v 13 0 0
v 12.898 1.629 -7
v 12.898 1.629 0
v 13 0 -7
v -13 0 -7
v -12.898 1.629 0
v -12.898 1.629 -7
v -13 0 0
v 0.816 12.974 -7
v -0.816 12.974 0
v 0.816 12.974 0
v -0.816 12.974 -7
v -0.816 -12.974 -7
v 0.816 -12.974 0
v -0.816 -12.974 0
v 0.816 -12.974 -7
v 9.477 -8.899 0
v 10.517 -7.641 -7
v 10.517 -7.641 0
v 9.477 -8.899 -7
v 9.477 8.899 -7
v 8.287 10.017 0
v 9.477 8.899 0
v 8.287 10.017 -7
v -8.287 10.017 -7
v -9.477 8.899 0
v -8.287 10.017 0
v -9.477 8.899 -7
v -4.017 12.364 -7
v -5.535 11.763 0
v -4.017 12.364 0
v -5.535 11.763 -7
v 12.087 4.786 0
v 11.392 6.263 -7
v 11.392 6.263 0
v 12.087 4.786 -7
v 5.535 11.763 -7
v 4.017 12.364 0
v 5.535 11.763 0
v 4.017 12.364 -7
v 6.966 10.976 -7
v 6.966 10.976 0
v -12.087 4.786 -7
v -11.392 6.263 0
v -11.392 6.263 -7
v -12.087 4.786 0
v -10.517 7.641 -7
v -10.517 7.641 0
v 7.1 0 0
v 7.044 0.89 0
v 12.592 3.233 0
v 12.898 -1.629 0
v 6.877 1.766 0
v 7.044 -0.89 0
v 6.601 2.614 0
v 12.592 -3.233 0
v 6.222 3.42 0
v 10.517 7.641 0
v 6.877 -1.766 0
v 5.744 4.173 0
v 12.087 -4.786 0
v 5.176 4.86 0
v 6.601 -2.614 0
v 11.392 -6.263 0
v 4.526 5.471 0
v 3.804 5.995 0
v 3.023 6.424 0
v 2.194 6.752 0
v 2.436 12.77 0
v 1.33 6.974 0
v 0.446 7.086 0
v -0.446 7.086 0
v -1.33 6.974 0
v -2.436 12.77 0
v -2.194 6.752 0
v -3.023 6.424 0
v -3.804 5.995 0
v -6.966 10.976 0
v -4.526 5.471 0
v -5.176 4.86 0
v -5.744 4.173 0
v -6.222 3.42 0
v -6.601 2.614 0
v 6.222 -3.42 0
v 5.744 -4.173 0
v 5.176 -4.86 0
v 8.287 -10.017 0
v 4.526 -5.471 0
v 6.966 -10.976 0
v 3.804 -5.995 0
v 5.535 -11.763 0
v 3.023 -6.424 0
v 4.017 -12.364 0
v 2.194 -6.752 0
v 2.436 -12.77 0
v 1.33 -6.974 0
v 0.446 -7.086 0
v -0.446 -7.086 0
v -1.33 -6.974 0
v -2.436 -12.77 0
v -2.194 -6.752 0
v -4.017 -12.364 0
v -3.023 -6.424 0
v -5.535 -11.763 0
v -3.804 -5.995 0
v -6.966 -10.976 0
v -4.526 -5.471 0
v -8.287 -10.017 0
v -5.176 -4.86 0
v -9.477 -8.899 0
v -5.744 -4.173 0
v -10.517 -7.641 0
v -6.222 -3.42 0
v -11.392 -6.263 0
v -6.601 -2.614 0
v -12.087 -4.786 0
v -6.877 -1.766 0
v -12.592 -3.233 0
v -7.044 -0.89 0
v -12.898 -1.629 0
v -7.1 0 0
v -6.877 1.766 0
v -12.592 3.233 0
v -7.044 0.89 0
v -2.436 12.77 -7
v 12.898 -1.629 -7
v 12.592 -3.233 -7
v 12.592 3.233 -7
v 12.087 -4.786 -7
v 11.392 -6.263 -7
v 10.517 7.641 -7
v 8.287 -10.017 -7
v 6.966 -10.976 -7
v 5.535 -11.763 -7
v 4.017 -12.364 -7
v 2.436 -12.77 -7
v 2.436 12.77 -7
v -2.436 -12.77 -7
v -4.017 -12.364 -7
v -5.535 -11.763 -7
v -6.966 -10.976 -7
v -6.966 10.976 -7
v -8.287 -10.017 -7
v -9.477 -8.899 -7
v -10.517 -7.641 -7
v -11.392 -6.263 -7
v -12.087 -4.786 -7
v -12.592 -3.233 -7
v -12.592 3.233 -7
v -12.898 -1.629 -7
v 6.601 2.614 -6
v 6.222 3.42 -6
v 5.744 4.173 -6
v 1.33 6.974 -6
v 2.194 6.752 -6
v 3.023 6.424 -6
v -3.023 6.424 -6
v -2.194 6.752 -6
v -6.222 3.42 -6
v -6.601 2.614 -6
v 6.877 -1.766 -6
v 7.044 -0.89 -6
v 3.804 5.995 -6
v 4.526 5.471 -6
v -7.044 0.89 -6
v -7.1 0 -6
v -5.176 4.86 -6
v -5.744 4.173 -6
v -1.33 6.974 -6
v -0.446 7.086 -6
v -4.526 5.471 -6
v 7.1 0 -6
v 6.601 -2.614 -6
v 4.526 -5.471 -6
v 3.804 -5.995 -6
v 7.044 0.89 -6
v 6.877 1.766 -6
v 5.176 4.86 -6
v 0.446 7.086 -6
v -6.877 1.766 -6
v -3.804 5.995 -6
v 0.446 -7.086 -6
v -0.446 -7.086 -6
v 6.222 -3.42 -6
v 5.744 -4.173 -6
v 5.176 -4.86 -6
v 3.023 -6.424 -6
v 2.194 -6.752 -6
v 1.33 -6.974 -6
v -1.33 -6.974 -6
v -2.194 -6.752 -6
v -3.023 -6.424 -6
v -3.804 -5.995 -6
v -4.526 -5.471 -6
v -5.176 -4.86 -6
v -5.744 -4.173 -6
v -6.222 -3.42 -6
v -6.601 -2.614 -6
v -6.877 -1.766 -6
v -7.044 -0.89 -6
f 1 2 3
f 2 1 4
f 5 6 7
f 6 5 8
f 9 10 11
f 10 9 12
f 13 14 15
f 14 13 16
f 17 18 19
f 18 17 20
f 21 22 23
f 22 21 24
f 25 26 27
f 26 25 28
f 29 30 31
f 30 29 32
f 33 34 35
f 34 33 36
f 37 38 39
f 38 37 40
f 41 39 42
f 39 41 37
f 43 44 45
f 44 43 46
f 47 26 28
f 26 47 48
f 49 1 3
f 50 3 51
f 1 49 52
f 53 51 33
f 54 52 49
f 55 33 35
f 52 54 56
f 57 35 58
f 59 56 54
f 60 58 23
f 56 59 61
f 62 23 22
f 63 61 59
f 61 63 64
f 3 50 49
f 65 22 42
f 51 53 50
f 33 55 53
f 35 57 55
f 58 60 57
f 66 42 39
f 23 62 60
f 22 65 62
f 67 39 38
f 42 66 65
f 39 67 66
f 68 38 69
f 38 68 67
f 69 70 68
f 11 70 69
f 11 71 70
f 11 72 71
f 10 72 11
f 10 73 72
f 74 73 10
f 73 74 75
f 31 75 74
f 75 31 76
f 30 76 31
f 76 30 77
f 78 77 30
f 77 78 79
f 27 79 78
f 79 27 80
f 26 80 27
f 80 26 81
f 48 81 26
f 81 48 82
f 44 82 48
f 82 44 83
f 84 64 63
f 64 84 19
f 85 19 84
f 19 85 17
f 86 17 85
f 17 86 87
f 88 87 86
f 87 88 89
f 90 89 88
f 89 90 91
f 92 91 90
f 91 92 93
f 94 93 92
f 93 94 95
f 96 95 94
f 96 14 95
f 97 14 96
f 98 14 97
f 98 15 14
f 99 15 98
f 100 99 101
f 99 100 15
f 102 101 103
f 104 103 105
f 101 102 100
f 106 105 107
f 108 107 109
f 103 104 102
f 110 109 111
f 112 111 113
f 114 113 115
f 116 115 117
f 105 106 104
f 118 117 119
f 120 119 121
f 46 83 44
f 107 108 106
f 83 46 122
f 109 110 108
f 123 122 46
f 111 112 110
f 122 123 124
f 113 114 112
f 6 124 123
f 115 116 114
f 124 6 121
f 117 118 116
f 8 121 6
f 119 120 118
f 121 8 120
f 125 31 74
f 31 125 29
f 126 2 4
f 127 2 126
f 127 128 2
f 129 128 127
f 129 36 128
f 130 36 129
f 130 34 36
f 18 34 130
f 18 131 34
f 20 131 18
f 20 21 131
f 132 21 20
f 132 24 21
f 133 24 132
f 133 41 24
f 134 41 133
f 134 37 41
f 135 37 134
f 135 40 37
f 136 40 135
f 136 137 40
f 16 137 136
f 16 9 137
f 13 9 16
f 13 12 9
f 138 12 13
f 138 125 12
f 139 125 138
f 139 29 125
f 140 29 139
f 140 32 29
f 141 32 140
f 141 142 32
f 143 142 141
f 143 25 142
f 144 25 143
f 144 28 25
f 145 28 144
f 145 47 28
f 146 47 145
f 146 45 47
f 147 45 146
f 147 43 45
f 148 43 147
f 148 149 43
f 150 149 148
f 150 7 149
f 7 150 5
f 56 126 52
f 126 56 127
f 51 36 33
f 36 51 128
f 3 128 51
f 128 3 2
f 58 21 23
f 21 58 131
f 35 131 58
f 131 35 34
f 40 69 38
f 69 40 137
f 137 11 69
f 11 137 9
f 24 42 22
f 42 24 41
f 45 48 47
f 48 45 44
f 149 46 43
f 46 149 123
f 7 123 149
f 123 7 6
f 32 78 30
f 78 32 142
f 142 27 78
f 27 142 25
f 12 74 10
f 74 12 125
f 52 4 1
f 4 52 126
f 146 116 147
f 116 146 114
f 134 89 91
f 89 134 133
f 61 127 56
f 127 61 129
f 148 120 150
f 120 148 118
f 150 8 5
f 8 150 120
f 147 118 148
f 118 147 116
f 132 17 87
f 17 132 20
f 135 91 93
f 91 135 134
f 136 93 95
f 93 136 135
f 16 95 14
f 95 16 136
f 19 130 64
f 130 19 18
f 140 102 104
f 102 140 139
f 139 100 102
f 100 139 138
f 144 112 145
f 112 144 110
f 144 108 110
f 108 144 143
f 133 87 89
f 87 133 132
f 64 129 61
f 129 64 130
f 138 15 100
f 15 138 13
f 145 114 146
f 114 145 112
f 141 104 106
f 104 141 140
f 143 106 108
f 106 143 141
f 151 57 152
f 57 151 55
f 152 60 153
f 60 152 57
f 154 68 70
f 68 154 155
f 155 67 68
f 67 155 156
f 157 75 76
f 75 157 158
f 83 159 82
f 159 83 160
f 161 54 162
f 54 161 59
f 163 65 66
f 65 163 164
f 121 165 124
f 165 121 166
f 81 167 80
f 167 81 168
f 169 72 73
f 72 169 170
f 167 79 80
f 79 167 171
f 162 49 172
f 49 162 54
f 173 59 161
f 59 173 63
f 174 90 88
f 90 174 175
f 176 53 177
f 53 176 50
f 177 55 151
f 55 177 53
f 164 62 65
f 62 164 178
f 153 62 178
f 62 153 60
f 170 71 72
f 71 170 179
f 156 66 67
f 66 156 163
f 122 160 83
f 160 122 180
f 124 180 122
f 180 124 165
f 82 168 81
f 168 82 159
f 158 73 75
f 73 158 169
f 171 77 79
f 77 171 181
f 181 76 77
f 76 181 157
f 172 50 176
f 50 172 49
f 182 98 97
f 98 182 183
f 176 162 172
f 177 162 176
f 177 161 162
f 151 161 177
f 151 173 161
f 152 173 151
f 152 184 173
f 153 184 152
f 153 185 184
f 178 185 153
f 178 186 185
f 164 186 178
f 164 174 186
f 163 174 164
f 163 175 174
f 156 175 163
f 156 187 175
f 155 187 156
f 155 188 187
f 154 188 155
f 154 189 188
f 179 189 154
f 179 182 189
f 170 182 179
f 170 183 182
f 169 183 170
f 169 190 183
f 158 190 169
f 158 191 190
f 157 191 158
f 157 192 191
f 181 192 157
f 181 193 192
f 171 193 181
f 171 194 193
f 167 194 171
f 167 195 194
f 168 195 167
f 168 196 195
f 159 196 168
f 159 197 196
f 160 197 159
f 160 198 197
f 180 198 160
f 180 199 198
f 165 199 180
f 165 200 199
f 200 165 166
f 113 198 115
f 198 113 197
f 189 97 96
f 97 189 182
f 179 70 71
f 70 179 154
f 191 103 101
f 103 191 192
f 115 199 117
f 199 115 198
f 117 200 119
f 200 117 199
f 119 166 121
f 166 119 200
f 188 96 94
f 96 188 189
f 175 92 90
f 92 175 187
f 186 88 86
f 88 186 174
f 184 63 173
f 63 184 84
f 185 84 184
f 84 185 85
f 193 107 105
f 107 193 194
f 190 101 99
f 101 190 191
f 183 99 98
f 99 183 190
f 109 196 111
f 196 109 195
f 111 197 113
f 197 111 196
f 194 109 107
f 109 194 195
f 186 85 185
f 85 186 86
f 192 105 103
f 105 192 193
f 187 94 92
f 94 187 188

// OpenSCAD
$fn = 50;


difference() {
	union() {
		translate(v = [0, 0, -7.0000000000]) {
			cylinder(h = 7, r = 13.0000000000);
		}
	}
	union() {
		#translate(v = [0, 0, -6.0000000000]) {
			cylinder(h = 6, r = 7.1000000000);
		}
	}
}
